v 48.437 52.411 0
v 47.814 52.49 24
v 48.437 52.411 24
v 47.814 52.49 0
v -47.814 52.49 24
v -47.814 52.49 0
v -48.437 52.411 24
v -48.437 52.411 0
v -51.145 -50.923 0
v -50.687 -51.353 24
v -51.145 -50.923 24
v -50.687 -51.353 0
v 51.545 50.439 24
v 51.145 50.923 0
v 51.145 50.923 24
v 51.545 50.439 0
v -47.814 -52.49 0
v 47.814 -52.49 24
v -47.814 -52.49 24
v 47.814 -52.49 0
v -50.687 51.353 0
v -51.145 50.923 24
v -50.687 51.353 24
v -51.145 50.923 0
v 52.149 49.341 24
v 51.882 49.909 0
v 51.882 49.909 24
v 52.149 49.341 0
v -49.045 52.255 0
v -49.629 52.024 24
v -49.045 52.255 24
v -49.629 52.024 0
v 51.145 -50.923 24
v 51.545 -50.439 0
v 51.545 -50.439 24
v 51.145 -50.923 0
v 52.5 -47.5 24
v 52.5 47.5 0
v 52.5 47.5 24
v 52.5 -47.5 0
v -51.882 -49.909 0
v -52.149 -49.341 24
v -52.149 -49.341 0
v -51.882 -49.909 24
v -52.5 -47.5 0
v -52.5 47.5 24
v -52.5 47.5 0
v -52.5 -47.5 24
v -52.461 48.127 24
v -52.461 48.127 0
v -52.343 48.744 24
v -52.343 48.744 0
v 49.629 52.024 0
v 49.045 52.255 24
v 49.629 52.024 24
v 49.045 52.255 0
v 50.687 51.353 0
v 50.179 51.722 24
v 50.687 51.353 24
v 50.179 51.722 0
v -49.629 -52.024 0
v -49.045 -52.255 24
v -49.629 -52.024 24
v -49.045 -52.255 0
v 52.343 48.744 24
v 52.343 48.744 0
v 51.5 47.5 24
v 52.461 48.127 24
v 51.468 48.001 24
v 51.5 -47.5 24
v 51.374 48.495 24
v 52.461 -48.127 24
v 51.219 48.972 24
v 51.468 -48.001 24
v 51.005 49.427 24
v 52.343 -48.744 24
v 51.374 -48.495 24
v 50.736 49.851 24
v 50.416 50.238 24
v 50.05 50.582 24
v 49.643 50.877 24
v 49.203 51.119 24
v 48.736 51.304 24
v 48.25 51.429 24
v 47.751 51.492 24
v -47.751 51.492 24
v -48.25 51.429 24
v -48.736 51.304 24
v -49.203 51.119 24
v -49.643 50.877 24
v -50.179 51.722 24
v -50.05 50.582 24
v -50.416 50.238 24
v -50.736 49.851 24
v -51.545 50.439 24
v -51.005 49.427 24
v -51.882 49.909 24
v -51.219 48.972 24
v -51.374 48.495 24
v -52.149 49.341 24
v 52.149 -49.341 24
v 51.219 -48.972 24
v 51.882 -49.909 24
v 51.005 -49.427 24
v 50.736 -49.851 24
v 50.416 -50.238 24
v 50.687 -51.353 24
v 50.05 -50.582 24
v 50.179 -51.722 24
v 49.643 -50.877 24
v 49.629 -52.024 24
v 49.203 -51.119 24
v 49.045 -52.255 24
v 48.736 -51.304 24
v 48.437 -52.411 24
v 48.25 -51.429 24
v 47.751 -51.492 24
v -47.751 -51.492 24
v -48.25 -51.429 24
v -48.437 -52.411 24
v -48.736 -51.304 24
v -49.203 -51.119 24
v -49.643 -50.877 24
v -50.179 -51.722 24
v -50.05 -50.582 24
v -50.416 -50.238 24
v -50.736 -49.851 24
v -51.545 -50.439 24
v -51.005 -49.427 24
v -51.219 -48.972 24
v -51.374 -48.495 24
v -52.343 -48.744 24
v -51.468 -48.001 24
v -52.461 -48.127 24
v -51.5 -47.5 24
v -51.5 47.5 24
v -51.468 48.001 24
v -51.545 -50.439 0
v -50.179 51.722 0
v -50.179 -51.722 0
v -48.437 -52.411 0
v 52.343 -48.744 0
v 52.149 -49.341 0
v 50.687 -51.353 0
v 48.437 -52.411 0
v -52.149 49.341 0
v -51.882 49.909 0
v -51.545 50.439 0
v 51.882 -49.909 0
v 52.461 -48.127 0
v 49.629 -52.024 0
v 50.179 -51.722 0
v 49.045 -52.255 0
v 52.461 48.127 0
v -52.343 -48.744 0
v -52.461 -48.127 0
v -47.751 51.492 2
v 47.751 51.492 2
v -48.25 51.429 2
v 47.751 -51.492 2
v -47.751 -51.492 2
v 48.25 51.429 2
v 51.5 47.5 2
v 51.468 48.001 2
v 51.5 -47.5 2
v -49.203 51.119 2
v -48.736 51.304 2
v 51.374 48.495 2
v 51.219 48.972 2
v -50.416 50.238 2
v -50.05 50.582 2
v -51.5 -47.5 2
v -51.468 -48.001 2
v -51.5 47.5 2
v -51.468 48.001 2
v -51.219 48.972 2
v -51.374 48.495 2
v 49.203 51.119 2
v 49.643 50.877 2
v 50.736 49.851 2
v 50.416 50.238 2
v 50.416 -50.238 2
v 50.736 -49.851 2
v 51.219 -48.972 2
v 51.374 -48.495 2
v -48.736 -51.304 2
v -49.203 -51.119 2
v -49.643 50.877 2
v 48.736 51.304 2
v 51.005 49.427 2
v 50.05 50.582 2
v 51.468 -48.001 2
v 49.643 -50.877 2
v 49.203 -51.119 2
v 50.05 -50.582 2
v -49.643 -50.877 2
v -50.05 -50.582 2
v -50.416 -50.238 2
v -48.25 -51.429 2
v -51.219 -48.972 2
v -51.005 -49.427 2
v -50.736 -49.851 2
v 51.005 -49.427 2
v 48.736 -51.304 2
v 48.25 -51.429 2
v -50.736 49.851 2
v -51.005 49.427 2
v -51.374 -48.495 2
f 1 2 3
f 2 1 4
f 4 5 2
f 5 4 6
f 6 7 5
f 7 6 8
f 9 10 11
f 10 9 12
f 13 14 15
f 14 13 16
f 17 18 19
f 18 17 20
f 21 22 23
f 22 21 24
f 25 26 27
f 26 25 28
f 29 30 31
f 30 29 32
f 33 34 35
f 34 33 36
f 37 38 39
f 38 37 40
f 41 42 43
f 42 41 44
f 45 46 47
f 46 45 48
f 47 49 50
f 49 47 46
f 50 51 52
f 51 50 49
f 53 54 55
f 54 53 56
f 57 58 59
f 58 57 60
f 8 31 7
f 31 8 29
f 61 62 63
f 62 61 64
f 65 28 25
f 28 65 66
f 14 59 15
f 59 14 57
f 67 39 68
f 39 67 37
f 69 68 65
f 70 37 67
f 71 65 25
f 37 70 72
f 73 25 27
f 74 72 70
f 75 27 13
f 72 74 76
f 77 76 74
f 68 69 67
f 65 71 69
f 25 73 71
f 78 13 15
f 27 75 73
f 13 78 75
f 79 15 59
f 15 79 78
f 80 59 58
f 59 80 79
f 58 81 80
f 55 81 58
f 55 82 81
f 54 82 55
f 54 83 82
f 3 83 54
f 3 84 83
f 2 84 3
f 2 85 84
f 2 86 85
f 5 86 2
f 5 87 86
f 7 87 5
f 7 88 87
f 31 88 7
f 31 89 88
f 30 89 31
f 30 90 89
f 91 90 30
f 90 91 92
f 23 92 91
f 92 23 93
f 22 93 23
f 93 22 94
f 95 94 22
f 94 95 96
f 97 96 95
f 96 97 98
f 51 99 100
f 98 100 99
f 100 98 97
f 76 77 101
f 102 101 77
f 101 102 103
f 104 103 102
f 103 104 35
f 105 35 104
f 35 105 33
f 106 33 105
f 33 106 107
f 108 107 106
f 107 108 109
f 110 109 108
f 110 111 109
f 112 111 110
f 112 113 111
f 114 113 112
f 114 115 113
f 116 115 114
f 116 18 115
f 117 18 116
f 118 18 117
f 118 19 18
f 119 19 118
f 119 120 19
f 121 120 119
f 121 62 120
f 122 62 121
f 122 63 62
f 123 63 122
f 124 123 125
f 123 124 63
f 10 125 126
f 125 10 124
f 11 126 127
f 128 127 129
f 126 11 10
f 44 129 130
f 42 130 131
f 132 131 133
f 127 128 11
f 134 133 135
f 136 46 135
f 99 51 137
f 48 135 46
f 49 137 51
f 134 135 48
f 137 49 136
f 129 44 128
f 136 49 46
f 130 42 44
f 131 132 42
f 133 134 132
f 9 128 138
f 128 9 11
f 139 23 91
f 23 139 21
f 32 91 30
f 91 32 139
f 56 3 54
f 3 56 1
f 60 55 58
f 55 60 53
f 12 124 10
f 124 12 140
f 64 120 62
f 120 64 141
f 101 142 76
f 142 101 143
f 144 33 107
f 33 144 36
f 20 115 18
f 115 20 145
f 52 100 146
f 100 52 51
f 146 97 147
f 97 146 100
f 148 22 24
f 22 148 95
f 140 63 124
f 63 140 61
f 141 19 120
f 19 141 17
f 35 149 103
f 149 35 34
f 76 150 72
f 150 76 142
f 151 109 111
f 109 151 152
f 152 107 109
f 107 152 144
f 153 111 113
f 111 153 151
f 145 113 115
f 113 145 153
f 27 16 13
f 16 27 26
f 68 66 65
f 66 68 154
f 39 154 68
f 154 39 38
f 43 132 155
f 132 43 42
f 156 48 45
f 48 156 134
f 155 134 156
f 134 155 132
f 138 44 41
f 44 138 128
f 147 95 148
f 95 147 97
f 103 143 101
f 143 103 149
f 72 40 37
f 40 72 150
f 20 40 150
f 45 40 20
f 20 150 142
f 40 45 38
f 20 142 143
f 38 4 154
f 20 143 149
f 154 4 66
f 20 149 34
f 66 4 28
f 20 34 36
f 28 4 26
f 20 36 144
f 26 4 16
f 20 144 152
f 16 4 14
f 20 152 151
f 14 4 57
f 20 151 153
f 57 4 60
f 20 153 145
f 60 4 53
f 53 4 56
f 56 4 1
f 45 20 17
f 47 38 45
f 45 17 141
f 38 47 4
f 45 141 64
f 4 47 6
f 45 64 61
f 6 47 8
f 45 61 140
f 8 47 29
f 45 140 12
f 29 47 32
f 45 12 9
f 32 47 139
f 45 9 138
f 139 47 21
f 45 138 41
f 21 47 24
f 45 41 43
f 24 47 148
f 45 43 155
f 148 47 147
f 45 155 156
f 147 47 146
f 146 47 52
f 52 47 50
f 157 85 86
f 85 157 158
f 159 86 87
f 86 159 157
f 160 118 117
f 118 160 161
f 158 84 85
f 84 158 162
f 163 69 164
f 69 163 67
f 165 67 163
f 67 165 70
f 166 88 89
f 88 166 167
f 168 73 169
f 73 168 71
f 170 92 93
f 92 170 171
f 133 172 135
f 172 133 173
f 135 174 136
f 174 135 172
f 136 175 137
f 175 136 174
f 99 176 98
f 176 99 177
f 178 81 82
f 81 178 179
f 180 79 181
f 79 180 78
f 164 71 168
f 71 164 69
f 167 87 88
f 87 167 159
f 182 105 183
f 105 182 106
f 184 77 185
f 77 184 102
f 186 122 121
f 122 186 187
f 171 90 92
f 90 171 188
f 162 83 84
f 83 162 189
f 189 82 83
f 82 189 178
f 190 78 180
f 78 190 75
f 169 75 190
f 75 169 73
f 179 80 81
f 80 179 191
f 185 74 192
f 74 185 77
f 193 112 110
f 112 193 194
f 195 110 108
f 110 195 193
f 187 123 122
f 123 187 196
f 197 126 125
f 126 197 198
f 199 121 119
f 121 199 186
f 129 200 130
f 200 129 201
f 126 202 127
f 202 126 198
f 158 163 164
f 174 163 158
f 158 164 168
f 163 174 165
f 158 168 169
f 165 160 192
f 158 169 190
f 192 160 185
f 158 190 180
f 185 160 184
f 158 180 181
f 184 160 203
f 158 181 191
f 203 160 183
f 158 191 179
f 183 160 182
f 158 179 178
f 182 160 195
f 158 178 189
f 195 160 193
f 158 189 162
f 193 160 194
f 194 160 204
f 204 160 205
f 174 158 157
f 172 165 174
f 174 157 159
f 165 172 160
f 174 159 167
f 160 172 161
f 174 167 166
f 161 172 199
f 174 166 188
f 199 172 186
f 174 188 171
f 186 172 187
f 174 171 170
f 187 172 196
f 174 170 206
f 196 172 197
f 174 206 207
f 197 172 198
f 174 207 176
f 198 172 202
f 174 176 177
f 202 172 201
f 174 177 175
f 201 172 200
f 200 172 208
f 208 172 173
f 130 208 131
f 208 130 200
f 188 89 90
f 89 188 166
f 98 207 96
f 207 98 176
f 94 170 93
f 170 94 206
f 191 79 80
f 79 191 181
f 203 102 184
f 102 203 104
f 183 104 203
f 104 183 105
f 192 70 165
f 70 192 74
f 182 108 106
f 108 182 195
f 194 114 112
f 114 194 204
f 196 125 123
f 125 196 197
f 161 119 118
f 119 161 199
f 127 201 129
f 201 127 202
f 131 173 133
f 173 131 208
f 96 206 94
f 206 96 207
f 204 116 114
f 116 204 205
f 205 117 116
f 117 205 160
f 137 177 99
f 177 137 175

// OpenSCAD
$fn = 50;


difference() {
	union() {
		hull() {
			translate(v = [-47.5000000000, 47.5000000000, 0]) {
				cylinder(h = 24, r = 5);
			}
			translate(v = [47.5000000000, 47.5000000000, 0]) {
				cylinder(h = 24, r = 5);
			}
			translate(v = [-47.5000000000, -47.5000000000, 0]) {
				cylinder(h = 24, r = 5);
			}
			translate(v = [47.5000000000, -47.5000000000, 0]) {
				cylinder(h = 24, r = 5);
			}
		}
	}
	union() {
		translate(v = [0, 0, 2]) {
			hull() {
				translate(v = [-47.5000000000, 47.5000000000, 0]) {
					cylinder(h = 22, r = 4);
				}
				translate(v = [47.5000000000, 47.5000000000, 0]) {
					cylinder(h = 22, r = 4);
				}
				translate(v = [-47.5000000000, -47.5000000000, 0]) {
					cylinder(h = 22, r = 4);
				}
				translate(v = [47.5000000000, -47.5000000000, 0]) {
					cylinder(h = 22, r = 4);
				}
			}
		}
	}
}
